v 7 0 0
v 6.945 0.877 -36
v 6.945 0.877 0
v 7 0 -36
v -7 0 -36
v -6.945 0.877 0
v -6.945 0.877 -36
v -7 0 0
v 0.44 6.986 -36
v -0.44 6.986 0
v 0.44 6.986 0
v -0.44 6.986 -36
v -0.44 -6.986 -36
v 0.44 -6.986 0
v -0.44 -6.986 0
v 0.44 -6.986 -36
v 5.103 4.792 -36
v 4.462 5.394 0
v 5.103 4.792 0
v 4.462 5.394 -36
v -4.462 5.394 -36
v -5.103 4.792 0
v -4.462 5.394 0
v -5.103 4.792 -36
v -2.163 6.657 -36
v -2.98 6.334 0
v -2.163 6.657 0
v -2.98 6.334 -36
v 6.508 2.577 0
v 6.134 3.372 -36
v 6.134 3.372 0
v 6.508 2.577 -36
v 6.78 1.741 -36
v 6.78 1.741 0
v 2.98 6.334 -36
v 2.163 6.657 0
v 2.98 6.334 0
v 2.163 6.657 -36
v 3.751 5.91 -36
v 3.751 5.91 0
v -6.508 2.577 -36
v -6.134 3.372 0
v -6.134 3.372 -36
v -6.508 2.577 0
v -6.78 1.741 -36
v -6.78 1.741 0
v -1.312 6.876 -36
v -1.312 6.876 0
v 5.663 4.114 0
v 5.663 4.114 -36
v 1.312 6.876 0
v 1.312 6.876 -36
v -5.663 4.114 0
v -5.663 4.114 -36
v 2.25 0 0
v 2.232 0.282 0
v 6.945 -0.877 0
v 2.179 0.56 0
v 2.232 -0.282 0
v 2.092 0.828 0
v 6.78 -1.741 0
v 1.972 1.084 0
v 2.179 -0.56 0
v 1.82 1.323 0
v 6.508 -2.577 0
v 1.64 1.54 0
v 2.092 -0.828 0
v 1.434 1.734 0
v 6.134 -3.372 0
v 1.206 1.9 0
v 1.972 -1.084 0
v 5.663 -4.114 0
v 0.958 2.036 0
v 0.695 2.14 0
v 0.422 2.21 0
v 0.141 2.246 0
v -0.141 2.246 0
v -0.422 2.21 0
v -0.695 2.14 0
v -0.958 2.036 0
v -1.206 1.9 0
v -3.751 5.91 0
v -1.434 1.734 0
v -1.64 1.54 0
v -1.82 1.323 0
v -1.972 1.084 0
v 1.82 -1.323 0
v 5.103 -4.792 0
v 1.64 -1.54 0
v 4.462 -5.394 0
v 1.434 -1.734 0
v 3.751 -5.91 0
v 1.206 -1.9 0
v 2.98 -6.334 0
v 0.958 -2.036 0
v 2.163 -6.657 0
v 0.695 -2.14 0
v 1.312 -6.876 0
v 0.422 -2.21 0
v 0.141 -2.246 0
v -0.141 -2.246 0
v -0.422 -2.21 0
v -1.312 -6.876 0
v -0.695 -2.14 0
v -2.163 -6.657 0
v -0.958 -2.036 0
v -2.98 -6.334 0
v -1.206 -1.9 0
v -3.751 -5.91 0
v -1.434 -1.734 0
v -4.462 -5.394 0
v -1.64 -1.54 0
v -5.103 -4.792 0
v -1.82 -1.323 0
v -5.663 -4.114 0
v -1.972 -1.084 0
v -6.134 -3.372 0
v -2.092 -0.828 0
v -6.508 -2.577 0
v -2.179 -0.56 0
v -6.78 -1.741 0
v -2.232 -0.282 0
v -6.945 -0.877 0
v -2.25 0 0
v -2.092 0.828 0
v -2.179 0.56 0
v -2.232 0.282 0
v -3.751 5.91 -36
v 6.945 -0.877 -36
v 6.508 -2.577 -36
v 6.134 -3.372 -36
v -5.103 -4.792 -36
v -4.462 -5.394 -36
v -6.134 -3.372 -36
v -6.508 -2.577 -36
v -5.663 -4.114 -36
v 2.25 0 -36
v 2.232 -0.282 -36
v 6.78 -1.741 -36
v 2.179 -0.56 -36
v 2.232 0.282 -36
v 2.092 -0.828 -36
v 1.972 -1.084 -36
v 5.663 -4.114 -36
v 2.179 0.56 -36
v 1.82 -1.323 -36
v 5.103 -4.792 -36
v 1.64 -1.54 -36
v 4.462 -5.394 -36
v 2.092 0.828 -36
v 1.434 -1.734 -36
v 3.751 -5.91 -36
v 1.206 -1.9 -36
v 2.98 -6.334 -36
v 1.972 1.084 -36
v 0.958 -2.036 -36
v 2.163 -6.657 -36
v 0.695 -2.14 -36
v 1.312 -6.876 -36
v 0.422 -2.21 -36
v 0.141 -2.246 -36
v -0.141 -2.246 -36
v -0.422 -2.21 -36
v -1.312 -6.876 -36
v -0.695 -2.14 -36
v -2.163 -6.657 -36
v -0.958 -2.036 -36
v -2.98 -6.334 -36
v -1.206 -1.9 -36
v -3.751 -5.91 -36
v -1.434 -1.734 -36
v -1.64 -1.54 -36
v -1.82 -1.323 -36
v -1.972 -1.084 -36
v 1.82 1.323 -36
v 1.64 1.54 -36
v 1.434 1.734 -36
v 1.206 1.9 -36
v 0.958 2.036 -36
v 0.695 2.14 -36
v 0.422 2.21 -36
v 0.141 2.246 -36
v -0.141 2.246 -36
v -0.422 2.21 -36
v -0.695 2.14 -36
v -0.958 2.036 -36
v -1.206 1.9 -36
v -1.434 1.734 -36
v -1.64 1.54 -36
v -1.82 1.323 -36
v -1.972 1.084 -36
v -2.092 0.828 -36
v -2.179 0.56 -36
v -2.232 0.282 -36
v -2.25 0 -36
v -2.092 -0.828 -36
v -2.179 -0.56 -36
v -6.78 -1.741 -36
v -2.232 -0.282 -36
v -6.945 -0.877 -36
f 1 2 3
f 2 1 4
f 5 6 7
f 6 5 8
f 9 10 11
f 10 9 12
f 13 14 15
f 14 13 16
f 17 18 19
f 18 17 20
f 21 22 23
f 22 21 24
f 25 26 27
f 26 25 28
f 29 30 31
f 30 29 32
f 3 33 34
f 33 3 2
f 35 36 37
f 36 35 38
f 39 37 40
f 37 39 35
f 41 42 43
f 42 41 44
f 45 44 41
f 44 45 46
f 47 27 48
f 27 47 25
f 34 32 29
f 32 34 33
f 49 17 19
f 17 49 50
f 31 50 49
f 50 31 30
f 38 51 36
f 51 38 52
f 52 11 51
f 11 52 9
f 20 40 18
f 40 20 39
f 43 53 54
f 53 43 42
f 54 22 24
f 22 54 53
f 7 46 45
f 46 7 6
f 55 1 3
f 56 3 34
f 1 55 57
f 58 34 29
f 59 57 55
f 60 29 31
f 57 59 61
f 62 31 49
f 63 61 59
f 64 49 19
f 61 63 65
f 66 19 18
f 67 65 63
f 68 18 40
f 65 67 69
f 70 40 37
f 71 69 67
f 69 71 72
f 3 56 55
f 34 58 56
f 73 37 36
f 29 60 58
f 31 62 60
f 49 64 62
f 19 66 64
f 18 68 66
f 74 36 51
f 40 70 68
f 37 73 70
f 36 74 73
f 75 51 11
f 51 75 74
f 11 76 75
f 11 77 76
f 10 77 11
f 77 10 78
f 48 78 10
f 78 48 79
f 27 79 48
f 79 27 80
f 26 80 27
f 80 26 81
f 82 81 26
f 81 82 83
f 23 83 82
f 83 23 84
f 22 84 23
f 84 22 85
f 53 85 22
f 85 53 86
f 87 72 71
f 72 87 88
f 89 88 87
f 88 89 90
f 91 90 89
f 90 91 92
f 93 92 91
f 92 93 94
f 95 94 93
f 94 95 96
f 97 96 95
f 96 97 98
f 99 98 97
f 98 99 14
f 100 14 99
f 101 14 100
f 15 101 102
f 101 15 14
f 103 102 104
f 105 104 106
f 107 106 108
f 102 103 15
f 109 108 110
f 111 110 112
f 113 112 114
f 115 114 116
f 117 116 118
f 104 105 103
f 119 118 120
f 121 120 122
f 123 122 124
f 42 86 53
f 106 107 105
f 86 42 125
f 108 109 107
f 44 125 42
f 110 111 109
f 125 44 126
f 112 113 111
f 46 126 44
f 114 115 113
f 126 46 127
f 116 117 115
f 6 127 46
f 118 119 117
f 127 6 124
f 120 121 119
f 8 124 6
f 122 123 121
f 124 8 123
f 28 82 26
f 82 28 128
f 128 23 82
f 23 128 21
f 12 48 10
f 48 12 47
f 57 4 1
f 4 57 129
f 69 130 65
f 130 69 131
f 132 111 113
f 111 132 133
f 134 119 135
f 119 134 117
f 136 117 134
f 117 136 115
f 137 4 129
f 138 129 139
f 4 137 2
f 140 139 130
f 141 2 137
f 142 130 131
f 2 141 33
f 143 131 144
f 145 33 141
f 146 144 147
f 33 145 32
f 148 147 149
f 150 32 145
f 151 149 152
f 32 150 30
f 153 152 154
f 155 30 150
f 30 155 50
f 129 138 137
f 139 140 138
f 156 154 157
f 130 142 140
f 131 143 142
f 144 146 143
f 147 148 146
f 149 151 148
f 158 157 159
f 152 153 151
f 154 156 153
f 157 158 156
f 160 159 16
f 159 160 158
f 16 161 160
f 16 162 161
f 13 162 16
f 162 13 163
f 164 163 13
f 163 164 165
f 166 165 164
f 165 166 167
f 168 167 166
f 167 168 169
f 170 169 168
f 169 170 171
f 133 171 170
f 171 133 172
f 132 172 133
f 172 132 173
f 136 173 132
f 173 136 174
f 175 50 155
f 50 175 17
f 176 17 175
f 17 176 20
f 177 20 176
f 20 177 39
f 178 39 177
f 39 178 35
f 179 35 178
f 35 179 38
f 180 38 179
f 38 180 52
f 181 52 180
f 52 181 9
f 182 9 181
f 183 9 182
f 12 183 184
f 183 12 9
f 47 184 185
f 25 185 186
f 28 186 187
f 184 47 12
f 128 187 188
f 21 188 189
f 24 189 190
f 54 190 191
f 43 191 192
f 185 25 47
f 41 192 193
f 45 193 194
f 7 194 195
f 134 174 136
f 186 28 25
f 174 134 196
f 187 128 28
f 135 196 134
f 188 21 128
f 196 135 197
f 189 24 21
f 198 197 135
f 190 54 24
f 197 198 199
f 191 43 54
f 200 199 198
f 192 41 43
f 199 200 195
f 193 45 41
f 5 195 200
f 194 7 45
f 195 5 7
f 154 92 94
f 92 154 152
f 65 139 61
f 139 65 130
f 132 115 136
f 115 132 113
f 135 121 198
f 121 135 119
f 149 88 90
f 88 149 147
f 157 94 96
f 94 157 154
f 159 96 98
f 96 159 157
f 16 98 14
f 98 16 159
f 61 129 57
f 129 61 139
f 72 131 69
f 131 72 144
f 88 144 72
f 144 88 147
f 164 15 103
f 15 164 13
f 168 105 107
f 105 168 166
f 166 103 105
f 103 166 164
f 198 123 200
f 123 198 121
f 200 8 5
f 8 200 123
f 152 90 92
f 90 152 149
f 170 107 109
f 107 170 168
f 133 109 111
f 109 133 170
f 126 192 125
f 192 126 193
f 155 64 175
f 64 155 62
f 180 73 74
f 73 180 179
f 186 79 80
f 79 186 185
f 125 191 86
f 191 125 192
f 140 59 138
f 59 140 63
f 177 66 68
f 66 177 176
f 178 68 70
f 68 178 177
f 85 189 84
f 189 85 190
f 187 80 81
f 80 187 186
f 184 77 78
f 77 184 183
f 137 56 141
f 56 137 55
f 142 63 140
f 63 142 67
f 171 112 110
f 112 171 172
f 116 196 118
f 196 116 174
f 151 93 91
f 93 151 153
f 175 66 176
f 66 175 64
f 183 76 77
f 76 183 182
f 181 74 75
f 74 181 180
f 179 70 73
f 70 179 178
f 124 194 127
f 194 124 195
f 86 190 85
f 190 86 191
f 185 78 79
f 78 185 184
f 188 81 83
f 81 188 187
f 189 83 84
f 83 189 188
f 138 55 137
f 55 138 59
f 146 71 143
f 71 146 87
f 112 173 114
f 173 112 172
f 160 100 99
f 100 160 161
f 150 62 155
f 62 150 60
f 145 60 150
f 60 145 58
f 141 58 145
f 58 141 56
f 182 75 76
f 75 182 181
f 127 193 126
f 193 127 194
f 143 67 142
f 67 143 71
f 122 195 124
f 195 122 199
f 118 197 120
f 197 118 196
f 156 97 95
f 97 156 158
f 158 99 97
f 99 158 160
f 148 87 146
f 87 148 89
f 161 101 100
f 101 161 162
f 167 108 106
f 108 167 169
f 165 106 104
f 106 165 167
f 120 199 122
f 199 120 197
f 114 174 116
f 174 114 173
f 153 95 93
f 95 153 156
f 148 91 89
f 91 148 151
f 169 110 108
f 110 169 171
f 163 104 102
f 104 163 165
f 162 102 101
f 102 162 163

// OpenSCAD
$fn = 50;


difference() {
	union() {
		translate(v = [0, 0, -36.0000000000]) {
			cylinder(h = 36, r = 7.0000000000);
		}
		cylinder(h = 0, r = 17.0000000000);
	}
	union() {
		#translate(v = [0, 0, -36]) {
			cylinder(h = 36, r = 2.2500000000);
		}
	}
}
